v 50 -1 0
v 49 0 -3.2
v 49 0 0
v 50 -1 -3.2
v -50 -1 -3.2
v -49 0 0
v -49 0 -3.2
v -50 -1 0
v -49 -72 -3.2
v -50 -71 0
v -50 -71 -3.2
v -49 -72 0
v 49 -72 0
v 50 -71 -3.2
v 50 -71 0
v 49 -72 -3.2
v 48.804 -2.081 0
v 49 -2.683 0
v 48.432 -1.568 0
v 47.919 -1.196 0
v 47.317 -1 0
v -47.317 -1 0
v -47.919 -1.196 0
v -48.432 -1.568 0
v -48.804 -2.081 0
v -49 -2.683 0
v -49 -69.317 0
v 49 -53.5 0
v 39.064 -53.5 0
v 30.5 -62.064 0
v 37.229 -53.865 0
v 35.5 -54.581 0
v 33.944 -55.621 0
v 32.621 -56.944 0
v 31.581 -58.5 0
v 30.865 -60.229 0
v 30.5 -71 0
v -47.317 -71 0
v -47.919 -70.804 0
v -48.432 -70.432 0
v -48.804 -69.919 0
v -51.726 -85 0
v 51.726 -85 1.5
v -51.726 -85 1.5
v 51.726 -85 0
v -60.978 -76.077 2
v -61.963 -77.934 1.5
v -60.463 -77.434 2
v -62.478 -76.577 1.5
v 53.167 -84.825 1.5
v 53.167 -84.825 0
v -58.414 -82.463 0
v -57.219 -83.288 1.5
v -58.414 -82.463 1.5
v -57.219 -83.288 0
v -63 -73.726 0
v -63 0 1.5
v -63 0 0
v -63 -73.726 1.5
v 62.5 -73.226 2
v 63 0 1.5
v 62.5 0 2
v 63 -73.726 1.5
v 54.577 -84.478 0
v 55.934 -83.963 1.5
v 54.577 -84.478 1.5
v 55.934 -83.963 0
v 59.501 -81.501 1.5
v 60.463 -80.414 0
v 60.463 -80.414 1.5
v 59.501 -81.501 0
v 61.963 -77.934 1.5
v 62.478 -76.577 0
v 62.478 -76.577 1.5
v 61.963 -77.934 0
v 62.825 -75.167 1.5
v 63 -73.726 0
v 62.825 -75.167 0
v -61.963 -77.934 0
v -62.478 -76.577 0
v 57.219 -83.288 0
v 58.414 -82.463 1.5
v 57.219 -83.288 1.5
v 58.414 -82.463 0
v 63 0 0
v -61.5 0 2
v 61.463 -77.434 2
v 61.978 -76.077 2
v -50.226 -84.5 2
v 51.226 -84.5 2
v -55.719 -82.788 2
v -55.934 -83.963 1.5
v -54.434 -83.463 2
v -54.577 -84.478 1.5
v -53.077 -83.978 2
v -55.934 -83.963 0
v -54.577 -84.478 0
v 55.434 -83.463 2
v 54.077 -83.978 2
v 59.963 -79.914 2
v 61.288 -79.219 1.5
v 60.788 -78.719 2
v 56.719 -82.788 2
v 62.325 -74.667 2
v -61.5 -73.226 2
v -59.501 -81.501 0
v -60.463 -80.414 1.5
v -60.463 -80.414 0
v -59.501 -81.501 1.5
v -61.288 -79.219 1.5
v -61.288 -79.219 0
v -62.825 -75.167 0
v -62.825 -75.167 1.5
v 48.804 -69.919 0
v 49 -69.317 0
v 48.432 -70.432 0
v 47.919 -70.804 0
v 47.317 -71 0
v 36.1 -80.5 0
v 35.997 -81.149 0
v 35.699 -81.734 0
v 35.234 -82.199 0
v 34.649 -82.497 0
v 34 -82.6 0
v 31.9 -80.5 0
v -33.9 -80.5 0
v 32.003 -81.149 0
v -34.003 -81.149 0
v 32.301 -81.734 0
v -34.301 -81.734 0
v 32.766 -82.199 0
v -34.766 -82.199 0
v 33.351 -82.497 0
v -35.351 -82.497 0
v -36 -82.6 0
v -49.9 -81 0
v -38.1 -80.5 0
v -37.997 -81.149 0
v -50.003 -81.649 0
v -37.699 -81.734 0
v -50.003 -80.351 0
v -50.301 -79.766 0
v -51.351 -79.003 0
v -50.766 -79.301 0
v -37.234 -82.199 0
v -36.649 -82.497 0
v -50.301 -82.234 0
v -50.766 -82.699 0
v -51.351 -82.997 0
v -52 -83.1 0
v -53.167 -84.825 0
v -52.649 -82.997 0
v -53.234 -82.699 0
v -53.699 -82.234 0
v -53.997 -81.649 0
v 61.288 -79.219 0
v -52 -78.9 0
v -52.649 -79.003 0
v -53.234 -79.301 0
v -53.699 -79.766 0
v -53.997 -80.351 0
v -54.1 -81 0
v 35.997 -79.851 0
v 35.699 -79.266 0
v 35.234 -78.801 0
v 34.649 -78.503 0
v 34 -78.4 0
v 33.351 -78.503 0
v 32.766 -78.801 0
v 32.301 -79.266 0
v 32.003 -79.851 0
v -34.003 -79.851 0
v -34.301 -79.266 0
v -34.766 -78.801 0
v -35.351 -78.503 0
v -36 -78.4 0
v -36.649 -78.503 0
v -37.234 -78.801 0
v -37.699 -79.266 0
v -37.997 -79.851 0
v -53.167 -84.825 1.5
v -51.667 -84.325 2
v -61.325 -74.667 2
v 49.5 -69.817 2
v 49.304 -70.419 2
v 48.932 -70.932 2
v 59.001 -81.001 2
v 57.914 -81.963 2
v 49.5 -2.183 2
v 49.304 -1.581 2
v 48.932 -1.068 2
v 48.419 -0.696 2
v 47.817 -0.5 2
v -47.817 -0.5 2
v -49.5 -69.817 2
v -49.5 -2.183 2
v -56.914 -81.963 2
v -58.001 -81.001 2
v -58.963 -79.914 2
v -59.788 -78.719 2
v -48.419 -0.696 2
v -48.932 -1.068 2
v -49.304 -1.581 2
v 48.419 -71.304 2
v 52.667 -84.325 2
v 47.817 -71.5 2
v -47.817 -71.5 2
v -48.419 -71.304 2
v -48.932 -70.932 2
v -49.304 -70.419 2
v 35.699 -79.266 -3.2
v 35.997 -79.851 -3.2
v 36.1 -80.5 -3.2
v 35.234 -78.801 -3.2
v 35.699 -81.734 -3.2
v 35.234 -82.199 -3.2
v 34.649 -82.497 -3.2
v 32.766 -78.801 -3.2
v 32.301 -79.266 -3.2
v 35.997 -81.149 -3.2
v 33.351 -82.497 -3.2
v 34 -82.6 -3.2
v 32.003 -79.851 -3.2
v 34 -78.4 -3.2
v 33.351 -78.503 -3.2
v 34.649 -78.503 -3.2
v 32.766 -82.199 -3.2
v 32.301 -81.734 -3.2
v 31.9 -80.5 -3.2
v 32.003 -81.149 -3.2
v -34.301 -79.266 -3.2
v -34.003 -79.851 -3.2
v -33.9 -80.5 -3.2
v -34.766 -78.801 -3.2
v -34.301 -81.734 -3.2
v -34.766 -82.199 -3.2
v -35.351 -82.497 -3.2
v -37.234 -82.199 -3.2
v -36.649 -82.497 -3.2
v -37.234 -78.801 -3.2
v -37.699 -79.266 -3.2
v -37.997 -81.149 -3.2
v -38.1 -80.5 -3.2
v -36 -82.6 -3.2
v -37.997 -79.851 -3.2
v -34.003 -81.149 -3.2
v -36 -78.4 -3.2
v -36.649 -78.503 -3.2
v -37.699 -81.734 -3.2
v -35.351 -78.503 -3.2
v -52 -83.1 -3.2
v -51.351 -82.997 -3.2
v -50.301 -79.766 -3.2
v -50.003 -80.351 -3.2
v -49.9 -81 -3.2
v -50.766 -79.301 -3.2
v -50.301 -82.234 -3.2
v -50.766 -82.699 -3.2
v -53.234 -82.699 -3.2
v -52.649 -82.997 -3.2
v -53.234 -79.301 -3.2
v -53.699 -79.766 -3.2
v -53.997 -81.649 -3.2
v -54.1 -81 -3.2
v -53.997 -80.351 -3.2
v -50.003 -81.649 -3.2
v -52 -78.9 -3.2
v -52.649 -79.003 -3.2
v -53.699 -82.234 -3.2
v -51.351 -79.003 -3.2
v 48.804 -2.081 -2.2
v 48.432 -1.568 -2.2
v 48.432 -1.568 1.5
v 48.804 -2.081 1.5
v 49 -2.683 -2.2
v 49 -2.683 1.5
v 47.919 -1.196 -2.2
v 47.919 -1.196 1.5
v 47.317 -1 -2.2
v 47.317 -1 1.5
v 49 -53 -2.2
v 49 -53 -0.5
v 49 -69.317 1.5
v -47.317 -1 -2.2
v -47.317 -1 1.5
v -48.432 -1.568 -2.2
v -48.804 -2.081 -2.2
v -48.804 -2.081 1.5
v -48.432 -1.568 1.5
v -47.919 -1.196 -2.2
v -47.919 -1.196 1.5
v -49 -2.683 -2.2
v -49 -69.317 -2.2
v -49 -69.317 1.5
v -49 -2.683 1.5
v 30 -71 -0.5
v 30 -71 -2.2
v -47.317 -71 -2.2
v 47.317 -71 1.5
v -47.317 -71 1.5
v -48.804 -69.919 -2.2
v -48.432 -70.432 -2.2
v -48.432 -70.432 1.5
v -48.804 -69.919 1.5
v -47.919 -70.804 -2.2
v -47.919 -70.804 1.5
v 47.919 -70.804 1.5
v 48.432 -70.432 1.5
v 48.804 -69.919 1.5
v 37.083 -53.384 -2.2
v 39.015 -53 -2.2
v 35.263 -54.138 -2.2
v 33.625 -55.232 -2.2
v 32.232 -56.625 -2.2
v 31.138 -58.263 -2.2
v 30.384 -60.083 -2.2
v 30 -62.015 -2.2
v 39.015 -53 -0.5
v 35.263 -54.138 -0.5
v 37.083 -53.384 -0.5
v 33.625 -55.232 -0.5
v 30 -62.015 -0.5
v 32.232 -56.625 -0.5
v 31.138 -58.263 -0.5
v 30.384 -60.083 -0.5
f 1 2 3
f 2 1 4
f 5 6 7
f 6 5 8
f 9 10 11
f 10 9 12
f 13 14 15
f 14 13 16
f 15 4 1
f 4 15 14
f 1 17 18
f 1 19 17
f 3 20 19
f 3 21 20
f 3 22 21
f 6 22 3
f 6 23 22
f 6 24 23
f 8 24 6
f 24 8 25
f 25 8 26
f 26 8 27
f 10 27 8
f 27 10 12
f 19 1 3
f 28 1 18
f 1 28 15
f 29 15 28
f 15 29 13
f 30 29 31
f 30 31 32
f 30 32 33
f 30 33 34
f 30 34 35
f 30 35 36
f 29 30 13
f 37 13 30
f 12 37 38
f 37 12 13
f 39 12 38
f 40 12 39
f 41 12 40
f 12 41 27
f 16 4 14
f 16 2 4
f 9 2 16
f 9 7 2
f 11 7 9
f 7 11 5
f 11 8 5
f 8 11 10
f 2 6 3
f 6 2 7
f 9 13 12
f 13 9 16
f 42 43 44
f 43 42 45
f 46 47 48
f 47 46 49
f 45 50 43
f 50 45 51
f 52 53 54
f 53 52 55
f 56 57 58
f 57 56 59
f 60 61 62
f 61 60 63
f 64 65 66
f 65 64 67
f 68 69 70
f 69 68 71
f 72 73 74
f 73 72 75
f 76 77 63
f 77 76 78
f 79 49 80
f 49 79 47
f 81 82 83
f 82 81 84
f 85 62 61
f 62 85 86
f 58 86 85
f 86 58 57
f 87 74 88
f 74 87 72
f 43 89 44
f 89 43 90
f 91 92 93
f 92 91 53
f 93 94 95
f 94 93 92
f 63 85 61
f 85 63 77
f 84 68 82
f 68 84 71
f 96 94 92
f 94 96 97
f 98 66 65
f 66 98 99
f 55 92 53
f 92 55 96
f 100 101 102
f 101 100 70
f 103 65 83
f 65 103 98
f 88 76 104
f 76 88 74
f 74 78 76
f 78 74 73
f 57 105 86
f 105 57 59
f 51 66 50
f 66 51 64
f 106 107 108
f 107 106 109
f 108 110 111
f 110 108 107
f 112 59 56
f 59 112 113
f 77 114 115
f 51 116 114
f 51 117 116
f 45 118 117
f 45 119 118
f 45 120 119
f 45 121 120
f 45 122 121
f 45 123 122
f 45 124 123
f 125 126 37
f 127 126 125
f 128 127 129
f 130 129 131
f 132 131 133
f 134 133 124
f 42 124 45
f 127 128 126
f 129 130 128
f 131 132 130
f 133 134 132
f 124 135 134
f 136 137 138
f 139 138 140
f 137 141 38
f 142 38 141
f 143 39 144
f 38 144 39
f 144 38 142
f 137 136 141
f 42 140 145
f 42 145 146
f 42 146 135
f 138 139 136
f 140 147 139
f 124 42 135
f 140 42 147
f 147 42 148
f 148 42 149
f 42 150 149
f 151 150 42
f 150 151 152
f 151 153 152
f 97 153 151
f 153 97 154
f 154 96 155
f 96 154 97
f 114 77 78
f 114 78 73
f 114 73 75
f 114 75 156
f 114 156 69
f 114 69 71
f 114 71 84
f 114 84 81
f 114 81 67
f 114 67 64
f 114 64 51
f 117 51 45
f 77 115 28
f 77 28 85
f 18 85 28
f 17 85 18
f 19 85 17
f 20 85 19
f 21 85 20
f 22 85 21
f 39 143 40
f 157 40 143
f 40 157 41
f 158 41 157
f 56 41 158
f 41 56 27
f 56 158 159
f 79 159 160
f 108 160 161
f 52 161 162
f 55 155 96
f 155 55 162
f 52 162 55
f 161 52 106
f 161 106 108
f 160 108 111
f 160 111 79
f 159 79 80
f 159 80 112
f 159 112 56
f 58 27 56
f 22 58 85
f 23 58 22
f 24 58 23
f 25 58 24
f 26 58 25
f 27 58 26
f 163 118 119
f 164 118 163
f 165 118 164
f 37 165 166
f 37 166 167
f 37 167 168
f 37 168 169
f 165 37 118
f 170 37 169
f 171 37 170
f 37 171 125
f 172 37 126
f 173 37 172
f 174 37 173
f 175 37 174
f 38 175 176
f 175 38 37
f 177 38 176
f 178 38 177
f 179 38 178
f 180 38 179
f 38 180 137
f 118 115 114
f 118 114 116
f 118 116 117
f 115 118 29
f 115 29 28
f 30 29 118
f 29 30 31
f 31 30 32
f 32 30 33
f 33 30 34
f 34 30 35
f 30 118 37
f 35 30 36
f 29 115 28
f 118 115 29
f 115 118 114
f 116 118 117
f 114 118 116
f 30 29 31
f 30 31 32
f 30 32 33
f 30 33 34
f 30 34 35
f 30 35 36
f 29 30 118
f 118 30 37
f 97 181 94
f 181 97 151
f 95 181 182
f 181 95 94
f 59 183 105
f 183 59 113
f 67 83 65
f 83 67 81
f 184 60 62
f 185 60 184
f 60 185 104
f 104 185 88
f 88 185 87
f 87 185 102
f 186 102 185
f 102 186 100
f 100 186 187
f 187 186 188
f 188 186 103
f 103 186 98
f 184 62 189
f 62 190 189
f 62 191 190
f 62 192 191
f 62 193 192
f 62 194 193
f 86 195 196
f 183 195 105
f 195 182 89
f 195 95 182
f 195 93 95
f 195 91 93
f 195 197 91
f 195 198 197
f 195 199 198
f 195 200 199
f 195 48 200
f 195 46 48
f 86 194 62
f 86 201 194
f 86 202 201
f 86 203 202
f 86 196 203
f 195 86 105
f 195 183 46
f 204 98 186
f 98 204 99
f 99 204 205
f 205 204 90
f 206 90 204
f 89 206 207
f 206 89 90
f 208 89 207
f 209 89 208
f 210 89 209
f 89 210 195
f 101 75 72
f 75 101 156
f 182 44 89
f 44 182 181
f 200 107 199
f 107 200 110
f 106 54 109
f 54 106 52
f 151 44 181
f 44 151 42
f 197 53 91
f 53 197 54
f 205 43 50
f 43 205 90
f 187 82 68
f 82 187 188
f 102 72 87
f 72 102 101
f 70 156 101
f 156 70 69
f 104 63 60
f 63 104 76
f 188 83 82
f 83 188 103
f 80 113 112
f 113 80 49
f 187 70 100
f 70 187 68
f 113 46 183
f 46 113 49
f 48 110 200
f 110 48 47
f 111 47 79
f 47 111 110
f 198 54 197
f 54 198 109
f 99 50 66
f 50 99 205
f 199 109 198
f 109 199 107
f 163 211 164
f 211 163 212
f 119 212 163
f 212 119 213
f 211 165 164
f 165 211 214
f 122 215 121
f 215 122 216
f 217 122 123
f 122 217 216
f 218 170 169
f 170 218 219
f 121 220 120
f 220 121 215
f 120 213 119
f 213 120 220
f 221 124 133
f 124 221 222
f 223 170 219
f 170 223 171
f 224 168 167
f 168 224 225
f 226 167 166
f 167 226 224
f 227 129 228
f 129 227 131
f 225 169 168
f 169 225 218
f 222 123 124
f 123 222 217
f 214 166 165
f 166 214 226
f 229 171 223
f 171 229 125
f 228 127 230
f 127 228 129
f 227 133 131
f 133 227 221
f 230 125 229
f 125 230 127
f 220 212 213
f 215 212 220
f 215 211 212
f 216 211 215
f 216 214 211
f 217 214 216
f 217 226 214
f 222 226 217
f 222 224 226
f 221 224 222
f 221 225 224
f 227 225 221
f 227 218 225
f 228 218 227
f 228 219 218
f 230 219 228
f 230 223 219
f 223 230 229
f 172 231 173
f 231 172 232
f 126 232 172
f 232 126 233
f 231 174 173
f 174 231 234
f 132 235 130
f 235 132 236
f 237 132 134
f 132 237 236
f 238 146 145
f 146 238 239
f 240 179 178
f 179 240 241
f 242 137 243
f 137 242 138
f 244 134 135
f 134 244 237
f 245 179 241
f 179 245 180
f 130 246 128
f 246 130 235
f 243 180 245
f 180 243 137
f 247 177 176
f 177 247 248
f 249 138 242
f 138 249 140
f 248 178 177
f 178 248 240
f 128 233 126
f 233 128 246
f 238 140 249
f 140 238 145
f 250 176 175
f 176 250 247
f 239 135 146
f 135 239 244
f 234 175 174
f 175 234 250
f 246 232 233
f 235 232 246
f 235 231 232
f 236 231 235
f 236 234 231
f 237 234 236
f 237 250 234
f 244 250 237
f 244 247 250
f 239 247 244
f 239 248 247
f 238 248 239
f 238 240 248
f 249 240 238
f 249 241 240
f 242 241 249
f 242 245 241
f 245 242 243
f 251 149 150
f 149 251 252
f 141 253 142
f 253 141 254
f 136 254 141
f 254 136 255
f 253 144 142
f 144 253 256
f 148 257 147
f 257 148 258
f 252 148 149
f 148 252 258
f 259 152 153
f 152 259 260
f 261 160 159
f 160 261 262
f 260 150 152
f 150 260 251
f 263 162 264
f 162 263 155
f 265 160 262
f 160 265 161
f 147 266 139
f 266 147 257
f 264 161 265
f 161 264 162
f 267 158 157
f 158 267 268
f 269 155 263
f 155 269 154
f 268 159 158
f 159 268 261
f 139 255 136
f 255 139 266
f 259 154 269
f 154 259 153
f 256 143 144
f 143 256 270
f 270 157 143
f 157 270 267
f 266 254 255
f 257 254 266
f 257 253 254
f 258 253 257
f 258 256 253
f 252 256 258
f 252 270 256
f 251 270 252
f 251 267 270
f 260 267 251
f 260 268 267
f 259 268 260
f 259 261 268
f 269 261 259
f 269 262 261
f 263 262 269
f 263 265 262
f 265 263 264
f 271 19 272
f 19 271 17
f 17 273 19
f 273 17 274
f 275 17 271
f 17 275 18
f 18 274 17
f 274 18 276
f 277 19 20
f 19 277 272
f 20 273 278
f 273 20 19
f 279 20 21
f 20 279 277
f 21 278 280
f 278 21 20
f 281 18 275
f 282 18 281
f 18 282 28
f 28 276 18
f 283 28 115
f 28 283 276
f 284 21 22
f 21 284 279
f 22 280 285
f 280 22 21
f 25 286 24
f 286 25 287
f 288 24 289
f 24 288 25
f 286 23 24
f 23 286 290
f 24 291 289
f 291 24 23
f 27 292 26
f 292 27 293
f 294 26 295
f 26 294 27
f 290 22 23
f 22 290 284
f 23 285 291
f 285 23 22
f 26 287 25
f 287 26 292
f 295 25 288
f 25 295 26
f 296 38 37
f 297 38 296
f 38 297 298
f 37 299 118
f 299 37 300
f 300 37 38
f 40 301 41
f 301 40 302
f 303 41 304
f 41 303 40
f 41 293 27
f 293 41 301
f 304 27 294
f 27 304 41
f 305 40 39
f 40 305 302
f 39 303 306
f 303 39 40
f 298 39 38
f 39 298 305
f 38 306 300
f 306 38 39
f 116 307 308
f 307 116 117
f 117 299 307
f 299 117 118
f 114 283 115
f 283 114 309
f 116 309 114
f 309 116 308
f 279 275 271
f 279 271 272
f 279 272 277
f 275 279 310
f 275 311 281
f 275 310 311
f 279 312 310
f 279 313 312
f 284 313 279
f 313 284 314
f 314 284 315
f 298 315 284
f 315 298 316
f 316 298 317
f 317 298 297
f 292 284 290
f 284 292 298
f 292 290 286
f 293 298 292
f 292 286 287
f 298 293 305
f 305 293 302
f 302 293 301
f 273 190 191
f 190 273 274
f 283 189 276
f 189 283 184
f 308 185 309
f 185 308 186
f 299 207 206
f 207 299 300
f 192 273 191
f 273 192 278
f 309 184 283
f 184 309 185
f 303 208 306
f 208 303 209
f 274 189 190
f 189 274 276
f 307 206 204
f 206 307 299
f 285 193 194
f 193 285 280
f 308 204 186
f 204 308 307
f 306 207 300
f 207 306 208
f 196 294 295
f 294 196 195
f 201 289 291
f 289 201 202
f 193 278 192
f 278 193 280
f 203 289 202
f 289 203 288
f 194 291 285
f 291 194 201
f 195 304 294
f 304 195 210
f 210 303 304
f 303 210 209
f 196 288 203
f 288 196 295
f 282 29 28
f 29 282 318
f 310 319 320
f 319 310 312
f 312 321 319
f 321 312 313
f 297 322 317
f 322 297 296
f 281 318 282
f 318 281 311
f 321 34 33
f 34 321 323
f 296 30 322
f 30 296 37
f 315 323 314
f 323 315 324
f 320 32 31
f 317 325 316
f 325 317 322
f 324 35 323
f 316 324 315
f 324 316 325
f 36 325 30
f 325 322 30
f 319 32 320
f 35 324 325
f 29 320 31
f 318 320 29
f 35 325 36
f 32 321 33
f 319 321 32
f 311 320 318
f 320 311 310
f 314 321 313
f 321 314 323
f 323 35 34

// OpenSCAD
include <BOSL/constants.scad>
use <BOSL/transforms.scad>
use <BOSL/shapes.scad>

hole_d=4.2;
pool_w=100;
pool_l=72;
pool_h=3.2;

module hole() {
    zmove(-pool_h) cylinder(d=hole_d, h=pool_h, $fn=20);
}

difference() {
    
    union() {
        // top
        hull() {
            cuboid(
                [100+13+13, 72+13, 1.5], 
                fillet=12, edges=EDGES_Z_FR, 
                align=V_FRONT+V_TOP, 
                $fn=50
            );
            xmove(.5) cuboid(
                [100+12+12, 72+12.5, 2], 
                fillet=12, edges=EDGES_Z_FR, 
                align=V_FRONT+V_TOP, 
                $fn=50
            );
        }
        // bottom
        cuboid([100,72,3.2], chamfer=1, edges=EDGES_Z_ALL, align=V_FRONT+V_BOTTOM);
        
        // holes
        translate([pool_w/2-16, -pool_l-8.5]) hole();
        translate([-pool_w/2+14, -pool_l-8.5]) hole();
        translate([-pool_w/2-2, -pool_l-9]) hole();
    }
    
    // pool
    ymove(-1) difference() {
        union() {
            cuboid(
                [100-2,72-2,4.4], 
                fillet=2, edges=EDGES_Z_ALL, 
                align=V_FRONT, $fn=20
            );
            hull() {
                zmove(1.5) cuboid(
                    [100-2,72-2,1], 
                    align=V_FRONT+V_TOP, fillet=2, 
                    edges=EDGES_Z_ALL, $fn=20
                );
                translate([0, .5, 2]) cuboid(
                    [100-1,72-1,1], align=V_FRONT+V_TOP, 
                    fillet=2, edges=EDGES_Z_ALL, $fn=20
                );
            }
        }
        hull() {
            cuboid(
                [20, 20, 2.5],
                fillet=10, edges=EDGE_BK_LF,
                p1=[50-20, -72, -3]
            );
            cuboid(
                [19.5, 19.5, 3],
                fillet=9.5, edges=EDGE_BK_LF,
                p1=[50-19.5, -72, -3]
            );
        }
    }
}
